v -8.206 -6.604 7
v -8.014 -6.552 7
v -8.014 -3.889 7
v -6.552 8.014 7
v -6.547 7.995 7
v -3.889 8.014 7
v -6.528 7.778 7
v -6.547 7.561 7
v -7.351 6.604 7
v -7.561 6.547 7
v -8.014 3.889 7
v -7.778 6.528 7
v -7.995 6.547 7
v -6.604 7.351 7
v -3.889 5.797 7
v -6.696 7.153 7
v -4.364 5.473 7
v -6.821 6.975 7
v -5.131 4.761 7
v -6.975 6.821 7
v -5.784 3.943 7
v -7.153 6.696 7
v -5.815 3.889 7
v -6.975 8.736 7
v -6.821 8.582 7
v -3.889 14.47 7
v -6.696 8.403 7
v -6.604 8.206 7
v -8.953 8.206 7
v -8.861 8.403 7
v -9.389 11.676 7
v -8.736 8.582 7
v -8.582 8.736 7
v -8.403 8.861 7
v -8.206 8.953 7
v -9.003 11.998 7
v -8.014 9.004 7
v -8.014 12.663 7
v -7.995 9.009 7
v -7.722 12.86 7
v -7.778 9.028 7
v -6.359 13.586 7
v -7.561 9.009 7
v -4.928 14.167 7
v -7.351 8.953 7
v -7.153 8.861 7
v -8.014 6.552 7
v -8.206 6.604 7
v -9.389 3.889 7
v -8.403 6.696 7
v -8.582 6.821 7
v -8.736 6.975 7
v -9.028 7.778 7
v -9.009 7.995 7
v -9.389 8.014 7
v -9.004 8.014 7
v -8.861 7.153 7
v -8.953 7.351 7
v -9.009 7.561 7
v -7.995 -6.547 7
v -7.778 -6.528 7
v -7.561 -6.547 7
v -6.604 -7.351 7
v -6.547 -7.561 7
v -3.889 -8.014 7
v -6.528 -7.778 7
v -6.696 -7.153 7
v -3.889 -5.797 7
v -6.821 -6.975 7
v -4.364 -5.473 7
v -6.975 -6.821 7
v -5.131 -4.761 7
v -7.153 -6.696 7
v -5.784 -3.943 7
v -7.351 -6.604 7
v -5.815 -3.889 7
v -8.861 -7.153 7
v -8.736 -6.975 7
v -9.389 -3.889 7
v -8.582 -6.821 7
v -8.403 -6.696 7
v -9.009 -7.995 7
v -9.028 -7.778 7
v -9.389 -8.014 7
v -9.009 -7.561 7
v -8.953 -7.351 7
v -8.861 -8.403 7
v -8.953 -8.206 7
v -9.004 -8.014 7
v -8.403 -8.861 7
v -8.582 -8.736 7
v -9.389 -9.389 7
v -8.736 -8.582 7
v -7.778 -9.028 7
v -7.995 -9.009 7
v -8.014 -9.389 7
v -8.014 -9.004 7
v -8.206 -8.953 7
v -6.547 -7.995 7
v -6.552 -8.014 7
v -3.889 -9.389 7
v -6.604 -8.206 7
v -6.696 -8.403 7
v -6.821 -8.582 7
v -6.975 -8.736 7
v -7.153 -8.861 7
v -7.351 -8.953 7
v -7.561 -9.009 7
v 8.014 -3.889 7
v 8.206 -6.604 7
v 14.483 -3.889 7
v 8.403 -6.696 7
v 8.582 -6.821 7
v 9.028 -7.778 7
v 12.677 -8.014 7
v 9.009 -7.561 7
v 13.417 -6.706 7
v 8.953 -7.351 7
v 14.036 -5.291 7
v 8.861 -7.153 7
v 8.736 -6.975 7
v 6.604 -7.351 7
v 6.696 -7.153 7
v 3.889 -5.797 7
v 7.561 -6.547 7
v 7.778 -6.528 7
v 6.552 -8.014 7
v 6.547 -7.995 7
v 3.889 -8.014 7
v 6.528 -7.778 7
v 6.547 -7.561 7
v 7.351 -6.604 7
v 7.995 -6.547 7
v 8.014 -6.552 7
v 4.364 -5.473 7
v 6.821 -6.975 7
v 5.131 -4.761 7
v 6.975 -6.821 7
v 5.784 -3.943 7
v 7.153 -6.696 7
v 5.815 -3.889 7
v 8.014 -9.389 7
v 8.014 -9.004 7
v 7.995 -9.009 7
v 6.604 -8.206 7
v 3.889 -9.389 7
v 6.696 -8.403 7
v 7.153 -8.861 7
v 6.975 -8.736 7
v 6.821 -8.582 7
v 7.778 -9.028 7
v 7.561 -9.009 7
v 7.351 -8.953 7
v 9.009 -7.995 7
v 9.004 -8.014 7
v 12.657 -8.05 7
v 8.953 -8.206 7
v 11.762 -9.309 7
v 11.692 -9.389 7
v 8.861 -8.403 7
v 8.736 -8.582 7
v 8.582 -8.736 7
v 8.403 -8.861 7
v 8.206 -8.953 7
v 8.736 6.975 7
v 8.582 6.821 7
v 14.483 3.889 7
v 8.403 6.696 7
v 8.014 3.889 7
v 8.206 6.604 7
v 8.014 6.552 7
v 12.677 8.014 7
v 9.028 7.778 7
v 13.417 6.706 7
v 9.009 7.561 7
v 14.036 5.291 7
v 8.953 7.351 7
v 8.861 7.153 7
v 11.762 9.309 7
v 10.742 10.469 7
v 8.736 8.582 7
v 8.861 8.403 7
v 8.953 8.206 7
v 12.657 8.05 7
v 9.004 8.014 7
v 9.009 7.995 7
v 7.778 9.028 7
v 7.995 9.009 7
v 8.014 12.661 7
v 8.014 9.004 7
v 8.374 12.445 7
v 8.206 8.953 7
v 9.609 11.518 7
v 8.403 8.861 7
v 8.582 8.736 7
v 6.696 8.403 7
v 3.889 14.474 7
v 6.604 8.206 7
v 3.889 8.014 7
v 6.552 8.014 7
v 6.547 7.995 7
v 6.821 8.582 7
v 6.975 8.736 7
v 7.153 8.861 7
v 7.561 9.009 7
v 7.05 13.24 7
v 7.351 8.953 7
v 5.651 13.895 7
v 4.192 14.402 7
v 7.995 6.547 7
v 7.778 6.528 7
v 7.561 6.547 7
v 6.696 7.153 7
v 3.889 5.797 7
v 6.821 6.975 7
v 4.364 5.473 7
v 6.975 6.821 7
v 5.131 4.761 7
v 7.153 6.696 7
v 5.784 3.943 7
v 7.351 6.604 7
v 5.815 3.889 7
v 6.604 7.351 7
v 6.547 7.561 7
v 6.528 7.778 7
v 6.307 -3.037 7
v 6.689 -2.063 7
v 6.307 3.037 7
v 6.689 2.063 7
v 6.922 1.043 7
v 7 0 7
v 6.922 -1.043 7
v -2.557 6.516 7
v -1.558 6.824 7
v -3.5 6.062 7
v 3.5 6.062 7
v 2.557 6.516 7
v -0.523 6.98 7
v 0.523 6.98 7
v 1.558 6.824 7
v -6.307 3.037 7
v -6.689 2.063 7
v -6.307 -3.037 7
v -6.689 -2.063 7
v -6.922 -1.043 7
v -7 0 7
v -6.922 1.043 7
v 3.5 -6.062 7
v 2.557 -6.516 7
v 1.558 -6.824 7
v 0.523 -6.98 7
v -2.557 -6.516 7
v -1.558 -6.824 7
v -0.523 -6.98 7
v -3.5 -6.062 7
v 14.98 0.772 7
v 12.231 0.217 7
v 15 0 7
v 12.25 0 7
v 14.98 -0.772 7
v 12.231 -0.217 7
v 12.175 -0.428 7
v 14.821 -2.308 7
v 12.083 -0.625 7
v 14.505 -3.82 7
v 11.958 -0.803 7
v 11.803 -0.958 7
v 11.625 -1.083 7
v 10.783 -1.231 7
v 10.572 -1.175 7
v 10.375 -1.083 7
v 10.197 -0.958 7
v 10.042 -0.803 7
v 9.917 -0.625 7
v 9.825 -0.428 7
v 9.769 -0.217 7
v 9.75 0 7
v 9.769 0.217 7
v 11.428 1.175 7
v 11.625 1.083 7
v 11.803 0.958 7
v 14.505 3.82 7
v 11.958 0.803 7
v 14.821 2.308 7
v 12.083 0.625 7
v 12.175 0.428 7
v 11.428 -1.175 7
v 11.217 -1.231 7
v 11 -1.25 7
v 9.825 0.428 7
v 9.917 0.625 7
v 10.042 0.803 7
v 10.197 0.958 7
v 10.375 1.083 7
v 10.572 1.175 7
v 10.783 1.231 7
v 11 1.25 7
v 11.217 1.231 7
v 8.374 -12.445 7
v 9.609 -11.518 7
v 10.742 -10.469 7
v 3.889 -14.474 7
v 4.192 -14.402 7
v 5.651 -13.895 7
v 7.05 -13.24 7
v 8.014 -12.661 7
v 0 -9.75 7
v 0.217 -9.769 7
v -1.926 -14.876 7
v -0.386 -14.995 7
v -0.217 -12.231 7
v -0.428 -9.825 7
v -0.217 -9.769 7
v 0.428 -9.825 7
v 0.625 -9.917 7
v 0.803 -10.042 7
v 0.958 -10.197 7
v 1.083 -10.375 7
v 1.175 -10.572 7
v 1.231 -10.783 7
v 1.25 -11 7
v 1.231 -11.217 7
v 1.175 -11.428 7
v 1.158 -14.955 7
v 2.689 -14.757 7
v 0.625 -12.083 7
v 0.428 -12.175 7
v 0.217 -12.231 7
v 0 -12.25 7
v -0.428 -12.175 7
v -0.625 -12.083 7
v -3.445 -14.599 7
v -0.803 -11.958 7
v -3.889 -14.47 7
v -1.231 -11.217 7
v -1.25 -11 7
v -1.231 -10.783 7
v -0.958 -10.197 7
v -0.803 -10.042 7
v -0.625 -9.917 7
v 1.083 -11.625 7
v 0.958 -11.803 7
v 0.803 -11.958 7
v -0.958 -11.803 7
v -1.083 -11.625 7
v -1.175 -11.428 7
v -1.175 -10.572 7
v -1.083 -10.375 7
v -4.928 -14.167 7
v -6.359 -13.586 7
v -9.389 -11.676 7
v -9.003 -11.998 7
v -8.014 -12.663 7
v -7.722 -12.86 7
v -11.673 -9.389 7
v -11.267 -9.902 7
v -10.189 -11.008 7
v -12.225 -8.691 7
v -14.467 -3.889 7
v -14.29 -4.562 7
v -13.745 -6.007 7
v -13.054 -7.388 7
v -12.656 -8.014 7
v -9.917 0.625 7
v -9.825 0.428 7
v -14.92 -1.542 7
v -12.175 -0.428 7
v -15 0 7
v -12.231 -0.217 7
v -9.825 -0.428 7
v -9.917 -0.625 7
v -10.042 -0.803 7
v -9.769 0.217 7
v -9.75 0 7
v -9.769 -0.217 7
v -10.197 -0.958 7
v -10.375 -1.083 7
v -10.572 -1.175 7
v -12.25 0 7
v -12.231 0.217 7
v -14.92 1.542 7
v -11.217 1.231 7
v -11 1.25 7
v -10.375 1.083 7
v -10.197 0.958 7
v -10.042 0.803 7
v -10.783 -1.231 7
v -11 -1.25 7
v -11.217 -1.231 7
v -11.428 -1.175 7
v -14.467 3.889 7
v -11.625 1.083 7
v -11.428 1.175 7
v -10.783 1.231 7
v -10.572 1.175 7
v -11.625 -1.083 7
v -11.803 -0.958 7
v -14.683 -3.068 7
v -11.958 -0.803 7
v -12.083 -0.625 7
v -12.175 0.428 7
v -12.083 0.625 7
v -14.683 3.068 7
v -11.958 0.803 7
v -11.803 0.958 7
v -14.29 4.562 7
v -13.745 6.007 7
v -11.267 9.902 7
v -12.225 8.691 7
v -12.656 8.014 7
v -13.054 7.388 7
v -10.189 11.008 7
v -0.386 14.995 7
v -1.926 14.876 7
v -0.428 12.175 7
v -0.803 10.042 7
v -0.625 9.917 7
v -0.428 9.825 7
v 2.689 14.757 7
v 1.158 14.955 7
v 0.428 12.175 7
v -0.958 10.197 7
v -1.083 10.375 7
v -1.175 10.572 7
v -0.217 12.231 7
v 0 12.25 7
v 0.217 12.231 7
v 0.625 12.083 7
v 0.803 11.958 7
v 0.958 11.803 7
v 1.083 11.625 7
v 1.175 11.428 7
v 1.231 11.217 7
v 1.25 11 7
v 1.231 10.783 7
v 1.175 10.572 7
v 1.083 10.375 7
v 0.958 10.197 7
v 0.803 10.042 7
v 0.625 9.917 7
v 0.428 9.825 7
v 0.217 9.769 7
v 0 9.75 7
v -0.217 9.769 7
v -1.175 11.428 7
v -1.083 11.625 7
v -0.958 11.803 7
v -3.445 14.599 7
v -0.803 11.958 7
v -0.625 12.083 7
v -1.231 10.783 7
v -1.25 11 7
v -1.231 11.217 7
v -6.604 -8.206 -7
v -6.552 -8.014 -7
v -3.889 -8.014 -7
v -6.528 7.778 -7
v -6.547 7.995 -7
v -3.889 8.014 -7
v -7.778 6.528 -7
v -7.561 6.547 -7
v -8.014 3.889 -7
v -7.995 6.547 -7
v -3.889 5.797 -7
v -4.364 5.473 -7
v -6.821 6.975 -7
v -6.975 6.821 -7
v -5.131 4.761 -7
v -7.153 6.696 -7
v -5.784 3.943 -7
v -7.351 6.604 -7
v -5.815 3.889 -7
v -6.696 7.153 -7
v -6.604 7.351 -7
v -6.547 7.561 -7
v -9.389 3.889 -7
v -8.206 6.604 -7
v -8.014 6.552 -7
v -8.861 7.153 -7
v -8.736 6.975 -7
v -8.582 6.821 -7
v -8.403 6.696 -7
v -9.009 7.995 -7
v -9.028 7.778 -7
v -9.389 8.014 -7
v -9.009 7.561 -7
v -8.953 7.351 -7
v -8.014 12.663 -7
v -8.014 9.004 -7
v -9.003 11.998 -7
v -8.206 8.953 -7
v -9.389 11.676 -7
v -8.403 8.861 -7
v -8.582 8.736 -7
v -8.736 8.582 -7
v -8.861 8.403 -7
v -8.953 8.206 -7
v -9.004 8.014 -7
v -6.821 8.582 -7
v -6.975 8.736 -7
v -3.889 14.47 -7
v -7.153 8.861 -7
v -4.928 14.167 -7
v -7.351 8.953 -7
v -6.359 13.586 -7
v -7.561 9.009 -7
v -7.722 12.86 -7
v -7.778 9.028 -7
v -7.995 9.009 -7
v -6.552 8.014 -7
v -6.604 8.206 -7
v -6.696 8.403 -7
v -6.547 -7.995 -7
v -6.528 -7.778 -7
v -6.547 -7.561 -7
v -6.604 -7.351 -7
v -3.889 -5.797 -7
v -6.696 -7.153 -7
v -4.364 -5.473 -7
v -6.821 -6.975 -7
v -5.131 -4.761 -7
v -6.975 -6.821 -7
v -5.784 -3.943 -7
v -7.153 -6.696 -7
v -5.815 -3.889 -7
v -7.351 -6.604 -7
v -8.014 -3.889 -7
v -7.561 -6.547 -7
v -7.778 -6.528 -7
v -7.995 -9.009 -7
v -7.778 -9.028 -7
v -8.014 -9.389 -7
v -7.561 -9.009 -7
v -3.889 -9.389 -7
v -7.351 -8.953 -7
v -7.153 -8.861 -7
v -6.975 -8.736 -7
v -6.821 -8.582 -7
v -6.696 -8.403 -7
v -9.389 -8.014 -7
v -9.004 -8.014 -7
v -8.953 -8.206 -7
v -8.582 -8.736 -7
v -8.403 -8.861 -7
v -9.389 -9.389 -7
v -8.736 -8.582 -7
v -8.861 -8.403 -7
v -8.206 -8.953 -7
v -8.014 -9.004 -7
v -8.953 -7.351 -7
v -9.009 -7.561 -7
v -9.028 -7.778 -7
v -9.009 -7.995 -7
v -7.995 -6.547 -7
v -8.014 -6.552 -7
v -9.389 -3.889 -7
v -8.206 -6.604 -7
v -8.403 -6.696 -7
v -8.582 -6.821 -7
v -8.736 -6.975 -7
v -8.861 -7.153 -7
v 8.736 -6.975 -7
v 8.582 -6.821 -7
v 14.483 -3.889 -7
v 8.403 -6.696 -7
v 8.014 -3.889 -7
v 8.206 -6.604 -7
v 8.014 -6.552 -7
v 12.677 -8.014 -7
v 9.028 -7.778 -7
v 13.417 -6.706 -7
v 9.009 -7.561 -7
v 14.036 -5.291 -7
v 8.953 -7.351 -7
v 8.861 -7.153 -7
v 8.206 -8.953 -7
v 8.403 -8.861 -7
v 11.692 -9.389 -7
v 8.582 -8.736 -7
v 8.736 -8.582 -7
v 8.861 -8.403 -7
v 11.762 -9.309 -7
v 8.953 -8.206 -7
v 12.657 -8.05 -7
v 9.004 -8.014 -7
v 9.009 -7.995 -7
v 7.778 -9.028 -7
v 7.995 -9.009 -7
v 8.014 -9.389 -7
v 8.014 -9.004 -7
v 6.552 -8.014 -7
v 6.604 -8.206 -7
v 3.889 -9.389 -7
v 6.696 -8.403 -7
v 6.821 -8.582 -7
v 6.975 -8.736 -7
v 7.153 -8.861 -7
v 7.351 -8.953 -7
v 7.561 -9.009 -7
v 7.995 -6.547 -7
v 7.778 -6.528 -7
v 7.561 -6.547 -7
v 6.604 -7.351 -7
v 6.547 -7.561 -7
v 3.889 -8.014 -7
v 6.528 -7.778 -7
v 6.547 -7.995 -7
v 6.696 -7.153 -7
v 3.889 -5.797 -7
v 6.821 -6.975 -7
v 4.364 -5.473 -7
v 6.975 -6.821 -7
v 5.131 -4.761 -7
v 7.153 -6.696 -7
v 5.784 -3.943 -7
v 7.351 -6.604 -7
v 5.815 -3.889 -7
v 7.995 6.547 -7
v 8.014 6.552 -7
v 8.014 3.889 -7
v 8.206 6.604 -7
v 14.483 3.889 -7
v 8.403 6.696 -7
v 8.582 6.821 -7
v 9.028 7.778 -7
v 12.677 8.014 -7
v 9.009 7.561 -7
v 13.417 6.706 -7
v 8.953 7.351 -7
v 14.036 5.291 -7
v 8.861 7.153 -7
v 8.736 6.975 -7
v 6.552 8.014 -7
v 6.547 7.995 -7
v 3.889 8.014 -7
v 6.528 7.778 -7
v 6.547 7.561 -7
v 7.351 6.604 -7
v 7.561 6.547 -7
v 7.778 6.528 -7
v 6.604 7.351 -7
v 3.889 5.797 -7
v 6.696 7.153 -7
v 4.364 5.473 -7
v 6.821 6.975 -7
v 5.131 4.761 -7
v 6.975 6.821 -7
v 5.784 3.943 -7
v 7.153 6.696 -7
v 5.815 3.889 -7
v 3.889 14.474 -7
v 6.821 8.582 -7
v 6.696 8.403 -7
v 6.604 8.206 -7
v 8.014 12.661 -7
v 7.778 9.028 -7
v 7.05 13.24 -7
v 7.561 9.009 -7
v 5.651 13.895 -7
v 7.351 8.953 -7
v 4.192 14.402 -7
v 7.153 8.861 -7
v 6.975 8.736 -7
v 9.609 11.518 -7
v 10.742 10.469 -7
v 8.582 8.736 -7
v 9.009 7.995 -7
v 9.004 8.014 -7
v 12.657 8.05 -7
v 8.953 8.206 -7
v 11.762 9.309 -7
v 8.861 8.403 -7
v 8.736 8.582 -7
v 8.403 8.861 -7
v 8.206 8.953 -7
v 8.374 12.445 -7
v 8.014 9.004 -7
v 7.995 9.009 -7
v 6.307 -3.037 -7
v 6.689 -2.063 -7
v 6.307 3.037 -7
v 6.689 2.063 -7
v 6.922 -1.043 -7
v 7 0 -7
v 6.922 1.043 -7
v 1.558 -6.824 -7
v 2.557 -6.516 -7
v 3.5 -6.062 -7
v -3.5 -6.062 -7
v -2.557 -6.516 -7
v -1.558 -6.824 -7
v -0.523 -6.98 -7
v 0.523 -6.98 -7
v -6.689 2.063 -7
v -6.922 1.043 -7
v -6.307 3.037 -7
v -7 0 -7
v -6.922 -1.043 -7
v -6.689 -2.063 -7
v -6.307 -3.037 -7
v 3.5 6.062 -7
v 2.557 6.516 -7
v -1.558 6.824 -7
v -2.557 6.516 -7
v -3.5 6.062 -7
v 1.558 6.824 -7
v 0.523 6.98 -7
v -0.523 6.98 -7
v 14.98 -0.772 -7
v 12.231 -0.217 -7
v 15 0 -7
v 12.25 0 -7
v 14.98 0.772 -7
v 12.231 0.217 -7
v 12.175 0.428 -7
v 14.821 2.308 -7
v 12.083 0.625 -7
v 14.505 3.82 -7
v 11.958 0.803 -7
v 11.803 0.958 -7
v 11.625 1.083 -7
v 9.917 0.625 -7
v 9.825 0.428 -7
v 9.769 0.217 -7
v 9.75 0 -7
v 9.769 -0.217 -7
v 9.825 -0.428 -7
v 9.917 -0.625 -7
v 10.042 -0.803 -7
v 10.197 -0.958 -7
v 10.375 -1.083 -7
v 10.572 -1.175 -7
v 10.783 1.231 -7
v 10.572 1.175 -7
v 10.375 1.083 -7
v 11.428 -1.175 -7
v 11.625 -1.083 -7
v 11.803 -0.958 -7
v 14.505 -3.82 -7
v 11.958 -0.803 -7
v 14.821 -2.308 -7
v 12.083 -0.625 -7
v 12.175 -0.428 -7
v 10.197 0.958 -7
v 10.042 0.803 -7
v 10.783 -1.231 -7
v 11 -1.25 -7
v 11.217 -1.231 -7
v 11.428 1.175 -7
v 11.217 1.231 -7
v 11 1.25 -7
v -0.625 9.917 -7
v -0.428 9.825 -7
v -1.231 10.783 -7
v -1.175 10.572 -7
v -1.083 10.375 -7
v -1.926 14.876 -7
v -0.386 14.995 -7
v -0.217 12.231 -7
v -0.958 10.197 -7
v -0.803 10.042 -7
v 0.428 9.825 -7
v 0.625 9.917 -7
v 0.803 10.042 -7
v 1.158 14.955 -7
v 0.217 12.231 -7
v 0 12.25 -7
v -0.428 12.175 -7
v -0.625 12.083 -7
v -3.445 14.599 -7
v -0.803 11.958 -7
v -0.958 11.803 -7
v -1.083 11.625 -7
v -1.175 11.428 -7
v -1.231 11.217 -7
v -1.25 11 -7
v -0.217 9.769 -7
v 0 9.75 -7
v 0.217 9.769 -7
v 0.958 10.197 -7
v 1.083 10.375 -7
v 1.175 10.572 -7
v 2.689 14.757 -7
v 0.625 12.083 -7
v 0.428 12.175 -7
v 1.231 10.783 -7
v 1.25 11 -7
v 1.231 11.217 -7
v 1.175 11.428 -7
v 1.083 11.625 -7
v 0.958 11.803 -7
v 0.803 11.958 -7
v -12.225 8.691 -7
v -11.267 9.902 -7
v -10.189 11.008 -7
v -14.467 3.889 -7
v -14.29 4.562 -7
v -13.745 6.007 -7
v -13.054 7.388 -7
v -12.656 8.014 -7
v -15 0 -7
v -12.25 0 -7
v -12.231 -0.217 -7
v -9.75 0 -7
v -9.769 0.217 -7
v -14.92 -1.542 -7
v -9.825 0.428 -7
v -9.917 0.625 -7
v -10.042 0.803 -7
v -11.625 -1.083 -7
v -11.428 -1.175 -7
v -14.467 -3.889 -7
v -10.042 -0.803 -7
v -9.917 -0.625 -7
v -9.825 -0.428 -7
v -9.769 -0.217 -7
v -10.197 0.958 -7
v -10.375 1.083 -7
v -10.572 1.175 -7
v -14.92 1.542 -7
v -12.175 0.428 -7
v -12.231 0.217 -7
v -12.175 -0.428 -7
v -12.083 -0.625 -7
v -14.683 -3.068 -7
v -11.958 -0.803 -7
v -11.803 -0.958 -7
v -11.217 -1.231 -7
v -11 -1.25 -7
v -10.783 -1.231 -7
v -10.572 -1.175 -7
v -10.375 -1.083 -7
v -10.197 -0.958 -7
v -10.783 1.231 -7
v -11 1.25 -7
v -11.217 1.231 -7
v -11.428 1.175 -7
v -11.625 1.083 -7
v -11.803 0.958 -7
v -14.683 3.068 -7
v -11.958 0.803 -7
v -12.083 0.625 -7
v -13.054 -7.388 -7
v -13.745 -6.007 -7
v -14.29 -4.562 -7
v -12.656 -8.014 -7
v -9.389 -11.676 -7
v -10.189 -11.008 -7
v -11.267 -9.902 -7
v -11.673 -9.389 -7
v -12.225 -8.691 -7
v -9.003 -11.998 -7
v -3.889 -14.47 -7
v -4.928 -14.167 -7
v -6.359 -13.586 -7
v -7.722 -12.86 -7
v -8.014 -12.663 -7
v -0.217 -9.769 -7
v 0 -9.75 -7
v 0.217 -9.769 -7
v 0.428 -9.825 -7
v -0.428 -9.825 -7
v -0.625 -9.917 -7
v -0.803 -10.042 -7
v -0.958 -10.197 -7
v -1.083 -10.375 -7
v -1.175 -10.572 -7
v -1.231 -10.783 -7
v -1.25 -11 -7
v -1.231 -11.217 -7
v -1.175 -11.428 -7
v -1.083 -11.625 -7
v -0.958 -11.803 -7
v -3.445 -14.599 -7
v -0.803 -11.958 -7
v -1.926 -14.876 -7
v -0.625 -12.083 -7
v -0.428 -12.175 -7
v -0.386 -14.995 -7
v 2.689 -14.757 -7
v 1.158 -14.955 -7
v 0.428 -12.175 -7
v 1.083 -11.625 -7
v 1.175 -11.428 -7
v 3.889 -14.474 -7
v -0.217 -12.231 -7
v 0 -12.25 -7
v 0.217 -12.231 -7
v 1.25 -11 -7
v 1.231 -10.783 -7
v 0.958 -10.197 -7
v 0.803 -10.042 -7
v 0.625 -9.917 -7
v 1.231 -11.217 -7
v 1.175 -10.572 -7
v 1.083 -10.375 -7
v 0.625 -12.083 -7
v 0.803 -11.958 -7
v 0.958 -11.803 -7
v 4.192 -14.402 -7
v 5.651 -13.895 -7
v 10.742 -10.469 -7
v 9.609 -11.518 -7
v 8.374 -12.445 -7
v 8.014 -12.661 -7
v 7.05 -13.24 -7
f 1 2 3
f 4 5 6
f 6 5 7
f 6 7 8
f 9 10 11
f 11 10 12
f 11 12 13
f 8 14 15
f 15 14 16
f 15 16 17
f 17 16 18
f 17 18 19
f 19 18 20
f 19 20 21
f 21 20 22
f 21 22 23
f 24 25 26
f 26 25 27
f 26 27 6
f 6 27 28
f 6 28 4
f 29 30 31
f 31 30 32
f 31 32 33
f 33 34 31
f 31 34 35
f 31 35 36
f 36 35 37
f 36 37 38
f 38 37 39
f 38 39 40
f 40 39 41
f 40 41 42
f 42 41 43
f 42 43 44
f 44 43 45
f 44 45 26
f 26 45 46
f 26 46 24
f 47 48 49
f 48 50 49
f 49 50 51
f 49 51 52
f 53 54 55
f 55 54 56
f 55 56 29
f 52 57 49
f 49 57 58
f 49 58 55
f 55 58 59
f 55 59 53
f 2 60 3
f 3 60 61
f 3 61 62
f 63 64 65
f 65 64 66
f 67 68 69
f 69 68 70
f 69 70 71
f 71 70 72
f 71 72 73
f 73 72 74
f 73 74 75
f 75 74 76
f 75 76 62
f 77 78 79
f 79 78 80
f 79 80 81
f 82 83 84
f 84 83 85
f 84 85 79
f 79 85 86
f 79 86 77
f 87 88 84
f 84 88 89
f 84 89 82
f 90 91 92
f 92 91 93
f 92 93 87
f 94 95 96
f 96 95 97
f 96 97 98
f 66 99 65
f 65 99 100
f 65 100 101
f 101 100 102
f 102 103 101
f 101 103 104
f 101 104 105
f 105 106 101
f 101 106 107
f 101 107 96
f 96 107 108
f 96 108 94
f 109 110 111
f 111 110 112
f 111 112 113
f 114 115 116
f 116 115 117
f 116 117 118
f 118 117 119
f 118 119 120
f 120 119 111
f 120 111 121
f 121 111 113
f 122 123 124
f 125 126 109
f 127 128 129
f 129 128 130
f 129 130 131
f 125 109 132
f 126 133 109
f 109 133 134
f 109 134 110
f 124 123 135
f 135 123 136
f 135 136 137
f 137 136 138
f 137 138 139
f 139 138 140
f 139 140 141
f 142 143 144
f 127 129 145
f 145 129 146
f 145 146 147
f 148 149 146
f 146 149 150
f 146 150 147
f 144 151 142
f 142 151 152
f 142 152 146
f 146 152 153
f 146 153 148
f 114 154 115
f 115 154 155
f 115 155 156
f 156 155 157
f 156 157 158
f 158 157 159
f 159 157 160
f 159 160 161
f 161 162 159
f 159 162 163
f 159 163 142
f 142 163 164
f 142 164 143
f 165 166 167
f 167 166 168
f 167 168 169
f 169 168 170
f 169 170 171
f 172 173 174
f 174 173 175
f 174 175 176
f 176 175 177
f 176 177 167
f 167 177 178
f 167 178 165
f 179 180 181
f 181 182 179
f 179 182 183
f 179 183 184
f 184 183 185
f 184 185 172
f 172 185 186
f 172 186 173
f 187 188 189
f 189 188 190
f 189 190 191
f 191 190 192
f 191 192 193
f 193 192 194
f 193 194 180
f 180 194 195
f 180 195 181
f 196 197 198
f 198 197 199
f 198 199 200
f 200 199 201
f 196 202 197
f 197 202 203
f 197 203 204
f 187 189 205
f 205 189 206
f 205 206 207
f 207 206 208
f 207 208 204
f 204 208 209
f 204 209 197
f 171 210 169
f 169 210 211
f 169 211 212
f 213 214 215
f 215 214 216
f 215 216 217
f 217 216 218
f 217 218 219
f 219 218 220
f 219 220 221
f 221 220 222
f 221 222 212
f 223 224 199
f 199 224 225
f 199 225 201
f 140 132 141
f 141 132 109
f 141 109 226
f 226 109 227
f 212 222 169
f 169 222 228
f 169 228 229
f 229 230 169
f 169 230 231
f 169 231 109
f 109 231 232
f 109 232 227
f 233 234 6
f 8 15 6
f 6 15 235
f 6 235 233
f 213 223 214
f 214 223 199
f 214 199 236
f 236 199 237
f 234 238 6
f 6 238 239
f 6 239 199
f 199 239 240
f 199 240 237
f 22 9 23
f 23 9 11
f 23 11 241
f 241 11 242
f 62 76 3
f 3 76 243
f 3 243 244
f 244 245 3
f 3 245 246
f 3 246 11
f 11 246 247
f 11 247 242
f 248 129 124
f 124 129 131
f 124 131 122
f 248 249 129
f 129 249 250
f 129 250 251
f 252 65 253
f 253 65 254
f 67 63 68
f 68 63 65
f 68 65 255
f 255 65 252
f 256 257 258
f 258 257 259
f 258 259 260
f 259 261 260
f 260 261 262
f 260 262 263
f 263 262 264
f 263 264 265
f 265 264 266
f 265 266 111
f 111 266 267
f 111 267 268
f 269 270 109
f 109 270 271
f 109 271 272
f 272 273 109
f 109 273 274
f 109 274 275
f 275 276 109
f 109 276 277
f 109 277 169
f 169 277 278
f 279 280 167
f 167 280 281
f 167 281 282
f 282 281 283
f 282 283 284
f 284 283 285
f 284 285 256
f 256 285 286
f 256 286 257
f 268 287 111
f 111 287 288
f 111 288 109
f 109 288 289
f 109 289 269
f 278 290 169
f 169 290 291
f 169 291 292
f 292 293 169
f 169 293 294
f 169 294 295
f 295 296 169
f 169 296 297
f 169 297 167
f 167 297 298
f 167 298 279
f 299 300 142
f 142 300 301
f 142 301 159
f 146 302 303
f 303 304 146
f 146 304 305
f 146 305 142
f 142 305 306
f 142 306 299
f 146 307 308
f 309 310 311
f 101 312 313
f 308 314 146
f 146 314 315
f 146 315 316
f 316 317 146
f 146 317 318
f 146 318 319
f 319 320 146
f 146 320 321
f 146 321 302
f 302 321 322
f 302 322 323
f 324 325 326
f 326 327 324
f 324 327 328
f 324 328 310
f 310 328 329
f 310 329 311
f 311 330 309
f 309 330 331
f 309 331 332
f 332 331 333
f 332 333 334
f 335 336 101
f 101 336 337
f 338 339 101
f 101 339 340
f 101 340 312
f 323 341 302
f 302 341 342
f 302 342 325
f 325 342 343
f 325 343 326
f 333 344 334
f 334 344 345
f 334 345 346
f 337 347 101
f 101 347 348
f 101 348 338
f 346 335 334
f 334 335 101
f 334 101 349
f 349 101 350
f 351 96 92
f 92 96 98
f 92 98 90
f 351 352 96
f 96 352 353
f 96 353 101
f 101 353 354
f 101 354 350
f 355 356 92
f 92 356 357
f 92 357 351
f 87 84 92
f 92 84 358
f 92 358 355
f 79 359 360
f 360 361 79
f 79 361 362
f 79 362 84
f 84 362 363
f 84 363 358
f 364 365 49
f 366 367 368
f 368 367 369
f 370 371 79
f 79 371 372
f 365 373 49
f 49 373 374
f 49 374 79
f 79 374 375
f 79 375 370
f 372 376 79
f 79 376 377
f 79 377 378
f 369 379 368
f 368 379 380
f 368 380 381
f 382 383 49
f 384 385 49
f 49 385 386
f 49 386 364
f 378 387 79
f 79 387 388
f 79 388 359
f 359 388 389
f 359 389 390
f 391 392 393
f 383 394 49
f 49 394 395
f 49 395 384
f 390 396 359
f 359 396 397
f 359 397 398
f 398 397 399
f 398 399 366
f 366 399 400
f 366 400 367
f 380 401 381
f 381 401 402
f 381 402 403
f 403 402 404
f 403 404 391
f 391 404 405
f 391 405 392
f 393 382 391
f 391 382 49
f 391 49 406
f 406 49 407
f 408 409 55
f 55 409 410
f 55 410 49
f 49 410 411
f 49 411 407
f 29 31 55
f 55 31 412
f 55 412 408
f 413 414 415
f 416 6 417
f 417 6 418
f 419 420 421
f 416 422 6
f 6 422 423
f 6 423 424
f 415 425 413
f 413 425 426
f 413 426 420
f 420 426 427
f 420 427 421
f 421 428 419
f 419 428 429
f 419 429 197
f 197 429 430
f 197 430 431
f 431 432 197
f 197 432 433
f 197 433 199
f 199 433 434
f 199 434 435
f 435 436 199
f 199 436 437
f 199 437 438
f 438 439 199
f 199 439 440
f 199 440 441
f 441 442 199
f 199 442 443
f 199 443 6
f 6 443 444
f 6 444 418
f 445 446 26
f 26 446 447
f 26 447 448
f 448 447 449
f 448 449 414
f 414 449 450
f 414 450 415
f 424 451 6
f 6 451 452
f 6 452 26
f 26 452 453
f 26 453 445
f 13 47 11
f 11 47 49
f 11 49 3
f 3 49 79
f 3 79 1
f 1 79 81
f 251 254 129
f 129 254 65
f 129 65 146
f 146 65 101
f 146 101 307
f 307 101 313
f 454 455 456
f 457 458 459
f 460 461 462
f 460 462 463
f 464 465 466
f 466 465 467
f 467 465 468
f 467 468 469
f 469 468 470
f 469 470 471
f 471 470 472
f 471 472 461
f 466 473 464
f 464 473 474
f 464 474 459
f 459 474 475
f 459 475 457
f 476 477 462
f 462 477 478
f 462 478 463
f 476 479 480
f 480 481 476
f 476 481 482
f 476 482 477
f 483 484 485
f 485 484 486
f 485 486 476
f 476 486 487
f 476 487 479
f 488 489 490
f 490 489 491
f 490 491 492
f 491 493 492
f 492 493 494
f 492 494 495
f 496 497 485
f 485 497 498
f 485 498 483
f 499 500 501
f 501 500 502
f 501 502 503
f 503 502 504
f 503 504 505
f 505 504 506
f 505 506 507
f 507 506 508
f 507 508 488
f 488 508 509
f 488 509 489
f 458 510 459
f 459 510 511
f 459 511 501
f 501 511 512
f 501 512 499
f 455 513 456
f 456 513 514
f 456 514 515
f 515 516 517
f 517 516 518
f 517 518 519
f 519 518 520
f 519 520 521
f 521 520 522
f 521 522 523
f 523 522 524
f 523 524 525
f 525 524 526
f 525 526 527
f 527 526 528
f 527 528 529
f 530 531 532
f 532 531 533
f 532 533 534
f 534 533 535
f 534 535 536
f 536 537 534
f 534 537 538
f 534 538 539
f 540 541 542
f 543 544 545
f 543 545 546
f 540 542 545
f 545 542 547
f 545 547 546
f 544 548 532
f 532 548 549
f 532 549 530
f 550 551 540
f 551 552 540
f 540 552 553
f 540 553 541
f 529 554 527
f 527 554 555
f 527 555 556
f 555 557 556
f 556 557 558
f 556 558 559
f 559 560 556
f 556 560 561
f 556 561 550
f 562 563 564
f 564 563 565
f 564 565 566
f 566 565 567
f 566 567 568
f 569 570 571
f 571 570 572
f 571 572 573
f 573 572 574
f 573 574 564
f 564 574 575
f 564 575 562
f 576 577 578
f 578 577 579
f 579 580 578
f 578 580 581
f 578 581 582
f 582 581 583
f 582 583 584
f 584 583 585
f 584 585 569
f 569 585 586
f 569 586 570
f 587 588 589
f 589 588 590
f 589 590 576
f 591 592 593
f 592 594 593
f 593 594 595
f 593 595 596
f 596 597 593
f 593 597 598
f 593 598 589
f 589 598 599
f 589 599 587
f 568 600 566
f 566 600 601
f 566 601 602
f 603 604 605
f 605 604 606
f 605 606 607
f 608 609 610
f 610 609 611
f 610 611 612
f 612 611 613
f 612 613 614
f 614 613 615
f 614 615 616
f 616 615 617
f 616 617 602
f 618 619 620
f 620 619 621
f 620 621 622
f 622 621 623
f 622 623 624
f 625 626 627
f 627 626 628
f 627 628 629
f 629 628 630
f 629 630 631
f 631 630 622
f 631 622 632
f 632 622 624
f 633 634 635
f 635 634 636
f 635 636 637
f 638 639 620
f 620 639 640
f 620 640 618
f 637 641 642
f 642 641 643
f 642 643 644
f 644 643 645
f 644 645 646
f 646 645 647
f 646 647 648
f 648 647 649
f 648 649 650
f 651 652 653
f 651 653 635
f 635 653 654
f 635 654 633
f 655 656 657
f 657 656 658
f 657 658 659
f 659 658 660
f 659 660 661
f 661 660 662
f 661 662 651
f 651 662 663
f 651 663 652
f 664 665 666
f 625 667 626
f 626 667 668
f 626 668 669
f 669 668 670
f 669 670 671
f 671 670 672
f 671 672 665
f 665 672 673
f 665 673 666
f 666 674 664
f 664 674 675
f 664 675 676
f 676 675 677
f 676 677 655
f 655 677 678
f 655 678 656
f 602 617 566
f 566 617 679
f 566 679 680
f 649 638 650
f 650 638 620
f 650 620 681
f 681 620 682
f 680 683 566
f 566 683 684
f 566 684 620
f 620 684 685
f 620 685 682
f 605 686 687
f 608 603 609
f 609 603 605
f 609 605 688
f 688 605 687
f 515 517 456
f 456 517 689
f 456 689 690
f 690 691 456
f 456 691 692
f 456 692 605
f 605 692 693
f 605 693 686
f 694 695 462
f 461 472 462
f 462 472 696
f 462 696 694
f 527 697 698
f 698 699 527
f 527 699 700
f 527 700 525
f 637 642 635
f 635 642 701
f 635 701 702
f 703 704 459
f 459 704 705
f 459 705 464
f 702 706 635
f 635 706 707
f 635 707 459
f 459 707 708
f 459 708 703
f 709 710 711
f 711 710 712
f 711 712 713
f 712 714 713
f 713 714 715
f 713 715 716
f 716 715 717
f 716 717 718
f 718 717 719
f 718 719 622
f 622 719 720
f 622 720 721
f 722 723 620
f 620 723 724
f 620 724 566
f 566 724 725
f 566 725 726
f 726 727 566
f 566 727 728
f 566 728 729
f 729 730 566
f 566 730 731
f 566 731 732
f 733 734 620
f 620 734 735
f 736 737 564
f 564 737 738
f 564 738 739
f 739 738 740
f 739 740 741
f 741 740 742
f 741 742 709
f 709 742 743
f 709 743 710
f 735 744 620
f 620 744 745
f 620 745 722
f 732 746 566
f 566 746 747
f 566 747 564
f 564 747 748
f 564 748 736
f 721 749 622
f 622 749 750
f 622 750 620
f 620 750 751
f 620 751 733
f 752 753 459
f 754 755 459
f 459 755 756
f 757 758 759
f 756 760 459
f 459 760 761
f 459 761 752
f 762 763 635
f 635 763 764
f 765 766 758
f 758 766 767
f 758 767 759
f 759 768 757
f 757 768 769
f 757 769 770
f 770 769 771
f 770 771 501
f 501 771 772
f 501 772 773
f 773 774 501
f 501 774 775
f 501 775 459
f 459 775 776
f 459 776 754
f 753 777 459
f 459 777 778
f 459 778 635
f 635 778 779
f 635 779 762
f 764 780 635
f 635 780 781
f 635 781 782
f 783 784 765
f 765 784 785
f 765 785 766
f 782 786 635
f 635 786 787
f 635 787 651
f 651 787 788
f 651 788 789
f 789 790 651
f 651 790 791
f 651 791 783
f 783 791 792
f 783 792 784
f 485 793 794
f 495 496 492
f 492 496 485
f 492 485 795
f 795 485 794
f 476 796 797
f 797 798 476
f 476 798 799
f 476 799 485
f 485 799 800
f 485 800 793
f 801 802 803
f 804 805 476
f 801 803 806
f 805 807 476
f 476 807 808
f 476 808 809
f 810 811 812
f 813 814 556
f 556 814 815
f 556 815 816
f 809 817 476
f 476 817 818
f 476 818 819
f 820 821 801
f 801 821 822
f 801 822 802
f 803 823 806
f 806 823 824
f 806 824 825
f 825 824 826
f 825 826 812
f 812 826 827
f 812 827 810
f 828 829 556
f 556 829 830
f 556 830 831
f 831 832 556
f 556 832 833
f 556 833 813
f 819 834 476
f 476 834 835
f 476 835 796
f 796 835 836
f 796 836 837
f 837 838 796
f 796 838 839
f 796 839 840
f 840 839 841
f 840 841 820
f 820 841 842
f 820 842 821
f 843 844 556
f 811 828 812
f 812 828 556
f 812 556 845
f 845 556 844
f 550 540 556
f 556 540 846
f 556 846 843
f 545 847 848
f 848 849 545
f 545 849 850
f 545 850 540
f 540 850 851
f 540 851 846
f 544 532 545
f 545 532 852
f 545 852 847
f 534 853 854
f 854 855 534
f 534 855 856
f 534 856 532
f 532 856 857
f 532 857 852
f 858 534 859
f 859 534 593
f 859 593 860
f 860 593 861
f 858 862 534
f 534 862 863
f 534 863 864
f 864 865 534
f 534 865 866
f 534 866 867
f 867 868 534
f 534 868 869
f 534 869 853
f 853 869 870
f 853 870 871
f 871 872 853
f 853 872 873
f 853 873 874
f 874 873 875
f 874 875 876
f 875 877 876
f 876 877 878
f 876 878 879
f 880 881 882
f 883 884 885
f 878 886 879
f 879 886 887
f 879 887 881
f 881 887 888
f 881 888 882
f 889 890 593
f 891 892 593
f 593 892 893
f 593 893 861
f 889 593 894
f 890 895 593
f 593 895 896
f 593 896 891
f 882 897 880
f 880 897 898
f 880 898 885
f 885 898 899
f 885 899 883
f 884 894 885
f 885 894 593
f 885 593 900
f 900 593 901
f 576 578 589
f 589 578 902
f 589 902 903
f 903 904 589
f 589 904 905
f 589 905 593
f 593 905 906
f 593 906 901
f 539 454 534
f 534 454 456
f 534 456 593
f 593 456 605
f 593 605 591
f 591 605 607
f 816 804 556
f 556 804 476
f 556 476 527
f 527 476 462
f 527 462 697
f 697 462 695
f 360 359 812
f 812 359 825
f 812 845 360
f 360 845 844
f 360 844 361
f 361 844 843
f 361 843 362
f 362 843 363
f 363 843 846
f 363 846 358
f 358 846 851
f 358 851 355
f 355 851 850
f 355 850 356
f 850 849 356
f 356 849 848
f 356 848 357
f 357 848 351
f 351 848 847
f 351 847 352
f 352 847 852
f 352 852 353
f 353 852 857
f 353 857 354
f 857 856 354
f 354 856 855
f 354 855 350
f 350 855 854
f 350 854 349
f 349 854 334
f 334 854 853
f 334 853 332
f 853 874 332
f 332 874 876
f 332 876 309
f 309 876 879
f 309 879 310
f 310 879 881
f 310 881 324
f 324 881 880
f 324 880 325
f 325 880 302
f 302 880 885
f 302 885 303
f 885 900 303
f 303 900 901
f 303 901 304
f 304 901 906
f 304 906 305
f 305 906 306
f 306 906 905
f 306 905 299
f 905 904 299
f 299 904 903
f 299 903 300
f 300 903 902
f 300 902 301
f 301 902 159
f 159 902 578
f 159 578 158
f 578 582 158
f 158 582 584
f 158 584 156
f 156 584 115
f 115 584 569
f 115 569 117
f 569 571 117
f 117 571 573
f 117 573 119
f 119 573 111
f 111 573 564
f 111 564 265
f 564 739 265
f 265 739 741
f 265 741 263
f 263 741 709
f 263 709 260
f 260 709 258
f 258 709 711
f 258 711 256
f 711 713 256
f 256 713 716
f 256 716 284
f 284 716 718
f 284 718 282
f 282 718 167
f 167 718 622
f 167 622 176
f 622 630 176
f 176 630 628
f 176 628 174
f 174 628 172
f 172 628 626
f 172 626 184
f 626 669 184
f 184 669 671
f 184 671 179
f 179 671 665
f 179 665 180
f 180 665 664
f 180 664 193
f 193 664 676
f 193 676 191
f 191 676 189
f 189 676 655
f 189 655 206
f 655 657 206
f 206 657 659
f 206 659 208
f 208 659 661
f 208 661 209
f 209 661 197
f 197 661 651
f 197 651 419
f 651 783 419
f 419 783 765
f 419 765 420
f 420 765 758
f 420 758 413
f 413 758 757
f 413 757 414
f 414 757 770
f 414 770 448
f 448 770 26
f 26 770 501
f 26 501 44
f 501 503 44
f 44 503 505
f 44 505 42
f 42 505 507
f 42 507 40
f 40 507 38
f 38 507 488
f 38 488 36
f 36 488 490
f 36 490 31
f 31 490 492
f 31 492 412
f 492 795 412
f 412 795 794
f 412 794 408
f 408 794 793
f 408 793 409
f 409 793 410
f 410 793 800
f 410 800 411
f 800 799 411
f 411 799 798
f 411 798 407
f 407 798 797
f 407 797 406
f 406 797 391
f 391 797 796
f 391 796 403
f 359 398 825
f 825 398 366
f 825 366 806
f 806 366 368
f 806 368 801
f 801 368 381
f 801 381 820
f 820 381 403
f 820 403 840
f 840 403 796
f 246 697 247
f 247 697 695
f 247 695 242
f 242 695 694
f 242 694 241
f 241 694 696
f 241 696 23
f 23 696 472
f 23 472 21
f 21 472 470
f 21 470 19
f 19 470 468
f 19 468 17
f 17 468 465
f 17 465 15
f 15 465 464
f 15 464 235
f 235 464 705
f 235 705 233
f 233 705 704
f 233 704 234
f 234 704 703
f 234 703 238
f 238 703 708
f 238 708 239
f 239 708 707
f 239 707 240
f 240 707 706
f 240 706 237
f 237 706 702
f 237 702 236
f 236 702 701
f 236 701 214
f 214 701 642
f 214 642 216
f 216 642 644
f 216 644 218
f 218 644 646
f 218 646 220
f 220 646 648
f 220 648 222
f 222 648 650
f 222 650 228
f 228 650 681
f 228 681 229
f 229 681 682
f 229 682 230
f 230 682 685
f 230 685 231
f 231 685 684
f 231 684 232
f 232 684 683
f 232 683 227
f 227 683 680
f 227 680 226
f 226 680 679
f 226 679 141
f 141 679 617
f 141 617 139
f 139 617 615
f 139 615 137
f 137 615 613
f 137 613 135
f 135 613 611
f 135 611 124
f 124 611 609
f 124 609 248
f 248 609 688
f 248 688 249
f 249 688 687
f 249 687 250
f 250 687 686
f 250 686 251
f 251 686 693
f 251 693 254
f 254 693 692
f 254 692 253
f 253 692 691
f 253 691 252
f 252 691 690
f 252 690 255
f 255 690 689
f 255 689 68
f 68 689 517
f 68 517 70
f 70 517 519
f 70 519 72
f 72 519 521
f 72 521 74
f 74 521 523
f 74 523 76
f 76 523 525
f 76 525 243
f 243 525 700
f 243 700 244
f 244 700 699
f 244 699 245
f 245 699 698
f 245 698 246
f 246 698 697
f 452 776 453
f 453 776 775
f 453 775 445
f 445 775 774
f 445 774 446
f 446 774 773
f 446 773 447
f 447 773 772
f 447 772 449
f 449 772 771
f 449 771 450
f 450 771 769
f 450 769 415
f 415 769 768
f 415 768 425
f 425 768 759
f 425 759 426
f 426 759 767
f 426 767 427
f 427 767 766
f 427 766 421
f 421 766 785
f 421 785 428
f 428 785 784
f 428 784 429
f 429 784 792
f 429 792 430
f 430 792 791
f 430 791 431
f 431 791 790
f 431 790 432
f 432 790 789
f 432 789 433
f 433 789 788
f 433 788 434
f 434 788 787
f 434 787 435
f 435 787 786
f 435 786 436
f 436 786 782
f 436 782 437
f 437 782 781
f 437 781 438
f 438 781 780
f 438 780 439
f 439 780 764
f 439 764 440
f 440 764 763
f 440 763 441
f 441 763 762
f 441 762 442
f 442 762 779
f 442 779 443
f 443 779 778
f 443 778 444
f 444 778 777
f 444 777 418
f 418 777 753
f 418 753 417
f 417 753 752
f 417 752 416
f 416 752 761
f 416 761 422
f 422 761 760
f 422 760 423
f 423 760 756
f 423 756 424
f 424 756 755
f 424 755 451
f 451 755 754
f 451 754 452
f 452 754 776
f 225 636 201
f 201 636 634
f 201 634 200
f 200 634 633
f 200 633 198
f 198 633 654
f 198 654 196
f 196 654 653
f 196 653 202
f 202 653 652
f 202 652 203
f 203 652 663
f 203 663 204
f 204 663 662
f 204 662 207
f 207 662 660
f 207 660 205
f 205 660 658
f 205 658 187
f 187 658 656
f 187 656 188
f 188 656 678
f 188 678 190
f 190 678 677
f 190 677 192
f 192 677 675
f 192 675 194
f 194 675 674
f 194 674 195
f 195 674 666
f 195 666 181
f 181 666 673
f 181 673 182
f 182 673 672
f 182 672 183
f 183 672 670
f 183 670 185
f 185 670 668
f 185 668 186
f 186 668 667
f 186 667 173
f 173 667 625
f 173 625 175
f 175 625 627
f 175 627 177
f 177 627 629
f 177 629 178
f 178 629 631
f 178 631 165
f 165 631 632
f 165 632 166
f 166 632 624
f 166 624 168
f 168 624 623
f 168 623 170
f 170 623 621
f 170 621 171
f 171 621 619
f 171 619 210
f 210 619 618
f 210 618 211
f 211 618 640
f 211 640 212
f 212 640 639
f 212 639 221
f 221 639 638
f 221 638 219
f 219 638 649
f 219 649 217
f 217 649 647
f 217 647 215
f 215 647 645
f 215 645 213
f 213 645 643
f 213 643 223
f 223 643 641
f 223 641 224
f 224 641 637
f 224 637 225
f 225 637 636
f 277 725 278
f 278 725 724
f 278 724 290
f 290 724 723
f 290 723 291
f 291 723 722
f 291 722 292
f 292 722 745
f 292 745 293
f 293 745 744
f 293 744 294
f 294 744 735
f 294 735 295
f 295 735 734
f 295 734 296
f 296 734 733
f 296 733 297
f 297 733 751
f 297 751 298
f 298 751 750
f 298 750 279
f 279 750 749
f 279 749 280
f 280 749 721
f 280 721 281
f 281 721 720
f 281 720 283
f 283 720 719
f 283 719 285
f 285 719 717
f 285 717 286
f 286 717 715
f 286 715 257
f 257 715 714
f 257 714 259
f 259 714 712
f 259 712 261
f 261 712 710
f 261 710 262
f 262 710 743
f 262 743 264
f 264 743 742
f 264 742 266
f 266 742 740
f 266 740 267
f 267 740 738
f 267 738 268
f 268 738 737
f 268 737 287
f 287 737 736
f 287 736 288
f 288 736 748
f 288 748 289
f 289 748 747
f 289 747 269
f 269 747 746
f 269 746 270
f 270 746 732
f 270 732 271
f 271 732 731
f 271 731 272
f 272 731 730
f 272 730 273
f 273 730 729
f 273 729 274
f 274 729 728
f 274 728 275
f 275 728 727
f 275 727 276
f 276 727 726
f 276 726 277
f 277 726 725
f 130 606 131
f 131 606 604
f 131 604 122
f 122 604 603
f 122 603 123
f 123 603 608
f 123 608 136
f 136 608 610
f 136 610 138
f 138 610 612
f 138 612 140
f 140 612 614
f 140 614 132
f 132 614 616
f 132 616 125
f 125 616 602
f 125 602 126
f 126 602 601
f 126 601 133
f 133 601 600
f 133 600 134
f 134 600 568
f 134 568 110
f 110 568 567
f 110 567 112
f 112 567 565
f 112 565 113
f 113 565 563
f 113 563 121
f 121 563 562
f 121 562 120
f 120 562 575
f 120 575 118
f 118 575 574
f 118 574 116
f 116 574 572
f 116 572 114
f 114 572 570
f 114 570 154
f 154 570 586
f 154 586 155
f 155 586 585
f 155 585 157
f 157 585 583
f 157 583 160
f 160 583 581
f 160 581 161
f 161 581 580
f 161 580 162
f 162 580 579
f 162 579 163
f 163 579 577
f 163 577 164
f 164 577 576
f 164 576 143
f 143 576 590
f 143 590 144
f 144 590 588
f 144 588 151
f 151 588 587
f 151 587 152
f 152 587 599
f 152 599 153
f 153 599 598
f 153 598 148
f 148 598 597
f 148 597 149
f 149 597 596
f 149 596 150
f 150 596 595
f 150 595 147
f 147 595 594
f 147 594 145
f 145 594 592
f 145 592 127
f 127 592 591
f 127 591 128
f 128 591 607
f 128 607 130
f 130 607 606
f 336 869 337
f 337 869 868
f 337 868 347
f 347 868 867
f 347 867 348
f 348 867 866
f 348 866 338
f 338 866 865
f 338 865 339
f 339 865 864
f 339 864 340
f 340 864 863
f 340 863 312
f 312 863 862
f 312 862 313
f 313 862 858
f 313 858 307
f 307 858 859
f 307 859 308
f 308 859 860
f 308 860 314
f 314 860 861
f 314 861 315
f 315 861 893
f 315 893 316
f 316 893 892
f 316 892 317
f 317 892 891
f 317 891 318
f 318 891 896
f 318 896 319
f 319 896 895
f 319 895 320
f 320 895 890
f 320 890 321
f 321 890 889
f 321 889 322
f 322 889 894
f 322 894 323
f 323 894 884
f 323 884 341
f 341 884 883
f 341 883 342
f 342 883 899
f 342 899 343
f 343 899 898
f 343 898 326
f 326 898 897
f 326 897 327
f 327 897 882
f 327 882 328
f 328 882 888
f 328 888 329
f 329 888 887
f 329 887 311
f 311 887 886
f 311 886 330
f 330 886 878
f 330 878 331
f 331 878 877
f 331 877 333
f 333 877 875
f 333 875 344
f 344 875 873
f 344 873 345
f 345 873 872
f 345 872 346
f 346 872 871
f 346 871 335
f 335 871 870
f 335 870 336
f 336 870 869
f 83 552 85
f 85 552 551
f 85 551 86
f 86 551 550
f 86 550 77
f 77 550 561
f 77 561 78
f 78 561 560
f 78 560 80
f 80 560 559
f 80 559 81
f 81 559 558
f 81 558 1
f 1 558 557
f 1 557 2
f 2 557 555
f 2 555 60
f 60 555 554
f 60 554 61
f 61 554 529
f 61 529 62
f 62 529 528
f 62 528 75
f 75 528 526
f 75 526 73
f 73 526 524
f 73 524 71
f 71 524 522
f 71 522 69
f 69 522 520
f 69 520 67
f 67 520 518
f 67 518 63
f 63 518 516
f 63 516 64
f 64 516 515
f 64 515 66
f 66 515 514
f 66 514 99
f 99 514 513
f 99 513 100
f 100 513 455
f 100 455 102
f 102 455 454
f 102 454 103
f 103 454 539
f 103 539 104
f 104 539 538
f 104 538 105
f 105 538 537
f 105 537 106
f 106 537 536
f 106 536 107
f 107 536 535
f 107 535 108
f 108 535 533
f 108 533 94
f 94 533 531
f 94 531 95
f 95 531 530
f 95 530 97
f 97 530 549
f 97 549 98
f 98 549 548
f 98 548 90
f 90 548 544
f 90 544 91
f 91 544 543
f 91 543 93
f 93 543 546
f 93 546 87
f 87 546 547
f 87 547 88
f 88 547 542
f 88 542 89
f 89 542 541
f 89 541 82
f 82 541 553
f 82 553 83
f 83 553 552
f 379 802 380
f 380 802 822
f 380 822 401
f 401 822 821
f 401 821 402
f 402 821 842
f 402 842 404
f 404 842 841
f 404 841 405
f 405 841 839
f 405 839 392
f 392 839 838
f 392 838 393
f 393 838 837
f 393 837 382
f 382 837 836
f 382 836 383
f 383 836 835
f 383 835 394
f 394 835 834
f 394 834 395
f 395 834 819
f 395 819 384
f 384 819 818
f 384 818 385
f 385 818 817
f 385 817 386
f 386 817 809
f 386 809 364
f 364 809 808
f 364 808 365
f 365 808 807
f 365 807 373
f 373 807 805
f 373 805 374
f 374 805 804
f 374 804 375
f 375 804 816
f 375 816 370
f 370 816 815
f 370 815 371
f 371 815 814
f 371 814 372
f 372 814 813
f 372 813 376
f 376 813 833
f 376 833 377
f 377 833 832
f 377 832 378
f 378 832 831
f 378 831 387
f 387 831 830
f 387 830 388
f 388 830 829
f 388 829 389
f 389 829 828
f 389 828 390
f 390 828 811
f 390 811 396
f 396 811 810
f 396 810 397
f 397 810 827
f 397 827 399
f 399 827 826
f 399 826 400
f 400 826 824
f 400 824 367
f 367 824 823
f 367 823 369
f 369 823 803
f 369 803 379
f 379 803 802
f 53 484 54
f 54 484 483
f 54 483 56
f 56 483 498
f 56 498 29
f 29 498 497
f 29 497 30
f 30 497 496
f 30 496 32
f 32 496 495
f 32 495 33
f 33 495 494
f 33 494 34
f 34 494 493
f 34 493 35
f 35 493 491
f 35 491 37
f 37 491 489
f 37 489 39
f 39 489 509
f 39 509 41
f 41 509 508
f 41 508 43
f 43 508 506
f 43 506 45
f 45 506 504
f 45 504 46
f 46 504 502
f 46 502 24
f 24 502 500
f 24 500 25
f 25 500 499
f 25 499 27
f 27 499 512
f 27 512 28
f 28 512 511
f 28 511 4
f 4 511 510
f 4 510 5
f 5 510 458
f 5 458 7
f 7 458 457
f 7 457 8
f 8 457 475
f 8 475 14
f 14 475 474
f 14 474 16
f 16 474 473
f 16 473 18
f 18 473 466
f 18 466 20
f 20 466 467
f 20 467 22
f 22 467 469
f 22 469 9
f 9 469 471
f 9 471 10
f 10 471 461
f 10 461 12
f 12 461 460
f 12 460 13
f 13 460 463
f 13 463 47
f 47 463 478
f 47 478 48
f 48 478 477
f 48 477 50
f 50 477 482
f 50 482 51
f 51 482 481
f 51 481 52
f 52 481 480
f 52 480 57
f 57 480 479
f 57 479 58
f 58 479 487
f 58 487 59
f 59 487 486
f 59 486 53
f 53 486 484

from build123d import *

# Parameters (mm, degrees)
ESBO_O1_R                = 15
ESBO_O1_R_2              = 7
ESBO_O1_R_3              = 1.25
RESSALTO_EXTRUS_O1_DEPTH = 7


with BuildPart() as part:
    # Esboço1 → Ressalto-extrusão1 (new, symmetric)
    with BuildSketch(Plane.XY):
        Circle(ESBO_O1_R)
        Circle(ESBO_O1_R_2, mode=Mode.SUBTRACT)
        with Locations((0, 11)):
            Circle(ESBO_O1_R_3, mode=Mode.SUBTRACT)
        with Locations((7.778174593, 7.778174593)):
            Circle(ESBO_O1_R_3, mode=Mode.SUBTRACT)
        with Locations((11, 0)):
            Circle(ESBO_O1_R_3, mode=Mode.SUBTRACT)
        with Locations((7.778174593, -7.778174593)):
            Circle(ESBO_O1_R_3, mode=Mode.SUBTRACT)
        with Locations((0, -11)):
            Circle(ESBO_O1_R_3, mode=Mode.SUBTRACT)
        with Locations((-7.778174593, -7.778174593)):
            Circle(ESBO_O1_R_3, mode=Mode.SUBTRACT)
        with Locations((-11, 0)):
            Circle(ESBO_O1_R_3, mode=Mode.SUBTRACT)
        with Locations((-7.778174593, 7.778174593)):
            Circle(ESBO_O1_R_3, mode=Mode.SUBTRACT)
    extrude(amount=RESSALTO_EXTRUS_O1_DEPTH, both=True)


solid = part.part
